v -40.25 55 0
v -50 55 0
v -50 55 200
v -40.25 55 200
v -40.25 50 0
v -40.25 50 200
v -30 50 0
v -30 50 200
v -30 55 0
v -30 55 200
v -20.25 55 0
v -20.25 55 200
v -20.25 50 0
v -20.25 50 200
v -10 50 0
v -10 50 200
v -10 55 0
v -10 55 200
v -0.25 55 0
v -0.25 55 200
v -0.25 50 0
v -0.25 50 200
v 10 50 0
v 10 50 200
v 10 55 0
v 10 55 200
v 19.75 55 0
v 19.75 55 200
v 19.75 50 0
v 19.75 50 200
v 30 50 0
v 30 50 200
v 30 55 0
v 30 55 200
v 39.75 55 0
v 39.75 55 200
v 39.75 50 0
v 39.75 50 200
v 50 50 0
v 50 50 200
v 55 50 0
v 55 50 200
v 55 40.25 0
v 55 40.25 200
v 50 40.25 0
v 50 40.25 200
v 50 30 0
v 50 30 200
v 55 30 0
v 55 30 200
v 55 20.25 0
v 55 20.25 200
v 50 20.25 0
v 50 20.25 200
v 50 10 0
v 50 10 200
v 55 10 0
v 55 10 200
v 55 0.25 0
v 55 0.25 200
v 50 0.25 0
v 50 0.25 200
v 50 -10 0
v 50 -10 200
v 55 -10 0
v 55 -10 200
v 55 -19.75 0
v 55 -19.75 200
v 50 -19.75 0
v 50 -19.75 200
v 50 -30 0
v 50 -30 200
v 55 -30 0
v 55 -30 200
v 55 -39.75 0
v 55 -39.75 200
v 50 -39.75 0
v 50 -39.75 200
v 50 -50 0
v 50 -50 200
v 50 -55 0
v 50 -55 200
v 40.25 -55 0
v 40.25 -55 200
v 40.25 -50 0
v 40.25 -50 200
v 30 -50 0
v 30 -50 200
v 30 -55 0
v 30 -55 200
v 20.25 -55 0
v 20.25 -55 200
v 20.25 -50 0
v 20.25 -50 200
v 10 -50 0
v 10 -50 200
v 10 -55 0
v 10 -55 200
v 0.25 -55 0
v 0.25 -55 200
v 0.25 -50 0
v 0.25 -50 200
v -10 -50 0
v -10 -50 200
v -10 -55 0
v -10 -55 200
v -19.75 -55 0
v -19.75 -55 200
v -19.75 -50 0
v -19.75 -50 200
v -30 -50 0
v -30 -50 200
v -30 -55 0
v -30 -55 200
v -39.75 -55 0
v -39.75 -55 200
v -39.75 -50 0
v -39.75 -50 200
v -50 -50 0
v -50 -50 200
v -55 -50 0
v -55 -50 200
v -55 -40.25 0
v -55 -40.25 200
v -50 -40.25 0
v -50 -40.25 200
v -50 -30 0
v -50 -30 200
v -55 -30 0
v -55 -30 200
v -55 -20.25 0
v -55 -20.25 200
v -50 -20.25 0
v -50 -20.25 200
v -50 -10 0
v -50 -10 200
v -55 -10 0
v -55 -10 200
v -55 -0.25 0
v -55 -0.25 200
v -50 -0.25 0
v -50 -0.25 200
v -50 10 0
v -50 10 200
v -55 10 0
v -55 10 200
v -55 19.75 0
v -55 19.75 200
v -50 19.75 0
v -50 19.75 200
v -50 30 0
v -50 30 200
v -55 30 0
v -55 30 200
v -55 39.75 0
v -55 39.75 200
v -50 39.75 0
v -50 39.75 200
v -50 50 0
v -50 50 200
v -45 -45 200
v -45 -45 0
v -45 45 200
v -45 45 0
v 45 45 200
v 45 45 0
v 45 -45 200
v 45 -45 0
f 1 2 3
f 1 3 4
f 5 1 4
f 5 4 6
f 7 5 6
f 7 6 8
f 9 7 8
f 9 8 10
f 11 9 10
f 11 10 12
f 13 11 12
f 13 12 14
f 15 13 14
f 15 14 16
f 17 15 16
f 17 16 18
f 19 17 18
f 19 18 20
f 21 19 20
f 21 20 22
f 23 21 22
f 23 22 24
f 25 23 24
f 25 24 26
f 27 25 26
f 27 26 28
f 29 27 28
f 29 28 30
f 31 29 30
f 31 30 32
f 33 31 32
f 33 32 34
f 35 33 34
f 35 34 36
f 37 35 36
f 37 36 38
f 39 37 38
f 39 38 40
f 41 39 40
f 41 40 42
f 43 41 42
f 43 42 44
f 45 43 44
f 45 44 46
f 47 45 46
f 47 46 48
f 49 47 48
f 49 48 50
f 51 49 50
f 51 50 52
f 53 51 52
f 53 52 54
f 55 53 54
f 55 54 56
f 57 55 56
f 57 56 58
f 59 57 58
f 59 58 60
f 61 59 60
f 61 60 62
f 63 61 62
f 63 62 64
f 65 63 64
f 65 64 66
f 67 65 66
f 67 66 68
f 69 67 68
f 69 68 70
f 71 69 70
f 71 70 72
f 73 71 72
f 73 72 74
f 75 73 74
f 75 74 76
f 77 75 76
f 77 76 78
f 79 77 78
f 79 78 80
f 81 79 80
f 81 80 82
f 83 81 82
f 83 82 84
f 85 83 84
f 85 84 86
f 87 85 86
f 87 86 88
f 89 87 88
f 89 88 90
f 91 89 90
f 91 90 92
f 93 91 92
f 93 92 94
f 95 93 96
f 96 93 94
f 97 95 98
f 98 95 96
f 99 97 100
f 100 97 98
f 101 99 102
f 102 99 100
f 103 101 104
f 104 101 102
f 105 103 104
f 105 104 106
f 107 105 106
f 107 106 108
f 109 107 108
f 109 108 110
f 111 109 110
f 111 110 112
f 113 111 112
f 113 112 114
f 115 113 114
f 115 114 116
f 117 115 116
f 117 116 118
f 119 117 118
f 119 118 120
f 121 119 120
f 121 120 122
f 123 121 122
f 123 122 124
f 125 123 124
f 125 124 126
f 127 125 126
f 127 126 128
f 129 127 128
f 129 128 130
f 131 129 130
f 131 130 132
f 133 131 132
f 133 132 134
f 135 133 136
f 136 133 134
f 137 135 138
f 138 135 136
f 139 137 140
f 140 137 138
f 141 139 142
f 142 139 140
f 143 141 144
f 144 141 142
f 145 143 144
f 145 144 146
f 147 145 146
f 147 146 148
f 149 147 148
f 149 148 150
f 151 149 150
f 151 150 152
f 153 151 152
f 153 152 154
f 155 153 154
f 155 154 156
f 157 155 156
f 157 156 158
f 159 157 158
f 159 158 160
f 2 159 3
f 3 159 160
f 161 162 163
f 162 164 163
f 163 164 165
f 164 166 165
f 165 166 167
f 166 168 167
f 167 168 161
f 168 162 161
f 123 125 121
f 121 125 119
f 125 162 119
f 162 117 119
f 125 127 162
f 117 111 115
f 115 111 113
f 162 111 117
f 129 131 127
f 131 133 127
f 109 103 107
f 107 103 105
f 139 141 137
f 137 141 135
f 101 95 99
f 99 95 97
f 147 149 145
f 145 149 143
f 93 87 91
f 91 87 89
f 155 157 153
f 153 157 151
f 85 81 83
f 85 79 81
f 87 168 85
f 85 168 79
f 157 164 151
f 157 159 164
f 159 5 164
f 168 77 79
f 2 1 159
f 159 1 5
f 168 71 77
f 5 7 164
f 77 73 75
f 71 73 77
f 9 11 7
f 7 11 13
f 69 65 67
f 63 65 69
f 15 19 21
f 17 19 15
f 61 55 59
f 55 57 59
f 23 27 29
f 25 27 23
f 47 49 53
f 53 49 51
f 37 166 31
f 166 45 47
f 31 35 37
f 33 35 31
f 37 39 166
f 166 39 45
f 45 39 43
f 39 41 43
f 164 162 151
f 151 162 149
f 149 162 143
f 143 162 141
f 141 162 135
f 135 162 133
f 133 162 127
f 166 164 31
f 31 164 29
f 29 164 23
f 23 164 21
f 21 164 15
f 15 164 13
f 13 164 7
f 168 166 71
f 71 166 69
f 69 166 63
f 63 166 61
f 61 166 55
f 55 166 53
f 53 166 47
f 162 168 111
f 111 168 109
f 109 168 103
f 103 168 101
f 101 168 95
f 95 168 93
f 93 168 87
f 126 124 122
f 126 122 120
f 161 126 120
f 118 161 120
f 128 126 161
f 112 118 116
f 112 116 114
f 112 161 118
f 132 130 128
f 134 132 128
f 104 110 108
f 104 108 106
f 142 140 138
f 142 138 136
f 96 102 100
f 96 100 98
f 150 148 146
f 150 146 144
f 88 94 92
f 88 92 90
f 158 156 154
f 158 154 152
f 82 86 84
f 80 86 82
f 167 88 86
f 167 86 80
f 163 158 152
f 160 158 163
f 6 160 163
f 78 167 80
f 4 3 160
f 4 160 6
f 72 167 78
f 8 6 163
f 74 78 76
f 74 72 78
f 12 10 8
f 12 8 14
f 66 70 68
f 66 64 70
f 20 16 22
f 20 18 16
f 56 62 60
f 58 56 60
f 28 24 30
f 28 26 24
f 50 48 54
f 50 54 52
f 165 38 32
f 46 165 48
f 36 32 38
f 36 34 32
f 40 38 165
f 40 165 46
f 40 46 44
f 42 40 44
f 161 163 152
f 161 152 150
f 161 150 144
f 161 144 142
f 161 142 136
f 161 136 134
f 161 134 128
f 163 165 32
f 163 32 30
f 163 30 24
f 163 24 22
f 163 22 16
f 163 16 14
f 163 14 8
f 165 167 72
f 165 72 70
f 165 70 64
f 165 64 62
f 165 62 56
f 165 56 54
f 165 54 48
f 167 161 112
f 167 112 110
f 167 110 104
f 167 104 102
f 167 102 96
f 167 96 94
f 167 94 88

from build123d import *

# Parameters (mm, degrees)
SKETCH_W  = 90
SKETCH_H  = 90
PAD_DEPTH = 200


with BuildPart() as part:
    # Sketch → Pad (new body)
    with BuildSketch(Plane.XY):
        Polygon((-50, 55), (-40.25, 55), (-40.25, 50), (-30, 50), (-30, 55), (-20.25, 55), (-20.25, 50), (-10, 50), (-10, 55), (-0.25, 55), (-0.25, 50), (10, 50), (10, 55), (19.75, 55), (19.75, 50), (30, 50), (30, 55), (39.75, 55), (39.75, 50), (50, 50), (55, 50), (55, 40.25), (50, 40.25), (50, 30), (55, 30), (55, 20.25), (50, 20.25), (50, 10), (55, 10), (55, 0.25), (50, 0.25), (50, -10), (55, -10), (55, -19.75), (50, -19.75), (50, -30), (55, -30), (55, -39.75), (50, -39.75), (50, -50), (50, -55), (40.25, -55), (40.25, -50), (30, -50), (30, -55), (20.25, -55), (20.25, -50), (10, -50), (10, -55), (0.25, -55), (0.25, -50), (-10, -50), (-10, -55), (-19.75, -55), (-19.75, -50), (-30, -50), (-30, -55), (-39.75, -55), (-39.75, -50), (-50, -50), (-55, -50), (-55, -40.25), (-50, -40.25), (-50, -30), (-55, -30), (-55, -20.25), (-50, -20.25), (-50, -10), (-55, -10), (-55, -0.25), (-50, -0.25), (-50, 10), (-55, 10), (-55, 19.75), (-50, 19.75), (-50, 30), (-55, 30), (-55, 39.75), (-50, 39.75), (-50, 50), align=None)
        Rectangle(SKETCH_W, SKETCH_H, mode=Mode.SUBTRACT)
    extrude(amount=PAD_DEPTH)


solid = part.part
